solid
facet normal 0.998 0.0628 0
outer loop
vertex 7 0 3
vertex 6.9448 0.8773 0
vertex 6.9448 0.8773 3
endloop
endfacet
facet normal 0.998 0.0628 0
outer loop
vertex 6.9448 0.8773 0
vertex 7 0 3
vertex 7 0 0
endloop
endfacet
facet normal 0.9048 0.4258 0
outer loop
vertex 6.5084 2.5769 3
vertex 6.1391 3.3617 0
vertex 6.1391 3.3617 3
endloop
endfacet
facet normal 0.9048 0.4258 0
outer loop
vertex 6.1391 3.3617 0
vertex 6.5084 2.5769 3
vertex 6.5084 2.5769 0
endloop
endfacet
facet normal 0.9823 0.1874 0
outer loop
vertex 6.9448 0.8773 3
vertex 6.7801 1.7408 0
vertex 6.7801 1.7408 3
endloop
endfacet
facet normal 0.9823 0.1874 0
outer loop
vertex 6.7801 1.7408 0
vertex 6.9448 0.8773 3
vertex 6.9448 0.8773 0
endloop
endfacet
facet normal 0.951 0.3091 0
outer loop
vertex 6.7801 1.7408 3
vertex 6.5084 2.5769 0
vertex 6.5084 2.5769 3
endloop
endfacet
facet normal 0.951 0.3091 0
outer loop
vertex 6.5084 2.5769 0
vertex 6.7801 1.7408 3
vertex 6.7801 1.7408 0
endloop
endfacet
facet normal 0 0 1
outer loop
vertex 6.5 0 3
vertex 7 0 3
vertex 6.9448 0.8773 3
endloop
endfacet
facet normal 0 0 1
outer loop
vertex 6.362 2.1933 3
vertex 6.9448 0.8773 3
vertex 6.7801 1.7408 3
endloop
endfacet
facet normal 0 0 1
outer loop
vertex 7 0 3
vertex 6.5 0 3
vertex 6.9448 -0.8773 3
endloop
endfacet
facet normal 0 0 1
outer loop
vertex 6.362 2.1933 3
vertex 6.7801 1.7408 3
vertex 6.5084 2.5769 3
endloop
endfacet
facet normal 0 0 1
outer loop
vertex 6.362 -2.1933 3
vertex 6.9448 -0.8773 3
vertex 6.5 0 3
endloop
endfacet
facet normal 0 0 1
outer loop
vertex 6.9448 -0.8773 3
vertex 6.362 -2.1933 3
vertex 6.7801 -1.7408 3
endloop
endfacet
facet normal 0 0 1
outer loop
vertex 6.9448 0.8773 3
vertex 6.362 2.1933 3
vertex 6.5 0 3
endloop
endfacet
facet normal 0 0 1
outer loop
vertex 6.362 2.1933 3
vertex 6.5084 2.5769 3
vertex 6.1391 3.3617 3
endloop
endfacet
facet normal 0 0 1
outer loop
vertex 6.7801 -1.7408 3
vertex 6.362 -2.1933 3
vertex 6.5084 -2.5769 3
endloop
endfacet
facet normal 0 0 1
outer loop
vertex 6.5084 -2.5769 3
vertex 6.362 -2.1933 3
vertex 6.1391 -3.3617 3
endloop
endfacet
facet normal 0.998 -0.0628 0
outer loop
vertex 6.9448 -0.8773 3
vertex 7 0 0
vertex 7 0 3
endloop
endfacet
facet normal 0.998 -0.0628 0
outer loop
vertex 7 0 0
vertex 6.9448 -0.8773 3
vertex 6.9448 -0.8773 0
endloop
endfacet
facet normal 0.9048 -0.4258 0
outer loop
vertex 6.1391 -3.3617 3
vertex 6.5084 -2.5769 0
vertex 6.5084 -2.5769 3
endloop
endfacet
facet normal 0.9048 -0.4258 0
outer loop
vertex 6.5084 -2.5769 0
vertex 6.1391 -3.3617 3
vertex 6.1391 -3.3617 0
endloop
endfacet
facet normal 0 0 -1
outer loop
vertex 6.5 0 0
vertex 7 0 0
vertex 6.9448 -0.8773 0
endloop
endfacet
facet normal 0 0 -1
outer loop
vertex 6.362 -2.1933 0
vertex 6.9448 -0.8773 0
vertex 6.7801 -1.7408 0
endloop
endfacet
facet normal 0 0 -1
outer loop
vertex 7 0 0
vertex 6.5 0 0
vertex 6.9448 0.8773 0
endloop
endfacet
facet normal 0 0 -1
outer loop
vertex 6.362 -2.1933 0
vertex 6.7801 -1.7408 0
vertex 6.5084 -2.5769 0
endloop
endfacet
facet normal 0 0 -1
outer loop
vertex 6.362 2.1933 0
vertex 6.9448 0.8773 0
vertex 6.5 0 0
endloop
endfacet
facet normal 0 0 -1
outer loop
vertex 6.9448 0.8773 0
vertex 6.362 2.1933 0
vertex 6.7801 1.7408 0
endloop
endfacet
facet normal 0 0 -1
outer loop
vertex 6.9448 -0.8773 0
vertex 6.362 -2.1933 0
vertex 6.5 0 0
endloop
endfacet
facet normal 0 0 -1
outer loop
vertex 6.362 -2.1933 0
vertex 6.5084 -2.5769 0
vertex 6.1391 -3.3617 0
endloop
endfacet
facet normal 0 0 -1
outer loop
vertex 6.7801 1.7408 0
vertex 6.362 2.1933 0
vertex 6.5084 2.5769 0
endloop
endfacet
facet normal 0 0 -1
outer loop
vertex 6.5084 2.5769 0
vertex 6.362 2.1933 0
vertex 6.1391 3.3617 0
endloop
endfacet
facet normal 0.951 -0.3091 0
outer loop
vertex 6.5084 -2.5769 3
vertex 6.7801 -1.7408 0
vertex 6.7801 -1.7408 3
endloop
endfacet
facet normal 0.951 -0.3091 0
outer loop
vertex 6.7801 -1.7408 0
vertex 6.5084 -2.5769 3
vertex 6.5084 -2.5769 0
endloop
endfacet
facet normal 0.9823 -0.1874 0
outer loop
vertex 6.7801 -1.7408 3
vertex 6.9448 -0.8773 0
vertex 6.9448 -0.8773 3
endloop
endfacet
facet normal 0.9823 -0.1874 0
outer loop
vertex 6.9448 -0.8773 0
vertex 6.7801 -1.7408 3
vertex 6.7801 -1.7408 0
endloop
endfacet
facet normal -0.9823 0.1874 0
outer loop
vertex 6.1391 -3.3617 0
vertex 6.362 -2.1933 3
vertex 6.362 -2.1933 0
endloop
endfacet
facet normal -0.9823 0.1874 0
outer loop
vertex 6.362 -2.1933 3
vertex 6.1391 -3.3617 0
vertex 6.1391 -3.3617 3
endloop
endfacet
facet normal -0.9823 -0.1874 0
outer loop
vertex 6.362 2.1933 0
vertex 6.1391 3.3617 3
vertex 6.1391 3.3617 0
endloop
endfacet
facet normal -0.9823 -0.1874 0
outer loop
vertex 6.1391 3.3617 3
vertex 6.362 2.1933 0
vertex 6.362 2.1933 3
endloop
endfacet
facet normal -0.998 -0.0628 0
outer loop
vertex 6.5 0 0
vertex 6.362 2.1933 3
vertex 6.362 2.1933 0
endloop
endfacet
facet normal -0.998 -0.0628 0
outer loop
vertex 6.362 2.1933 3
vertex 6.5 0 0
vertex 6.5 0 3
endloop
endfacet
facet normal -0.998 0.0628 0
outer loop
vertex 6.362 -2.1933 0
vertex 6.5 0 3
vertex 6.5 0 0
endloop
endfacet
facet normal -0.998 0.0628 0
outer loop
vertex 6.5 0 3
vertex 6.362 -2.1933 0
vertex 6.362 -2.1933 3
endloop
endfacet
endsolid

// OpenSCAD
$fn = 50;


difference() {
	union() {
		cylinder(h = 3, r = 7.0000000000);
		translate(v = [-14.0000000000, 0, 0]) {
			cylinder(h = 3, r = 7.0000000000);
		}
	}
	union() {
		cylinder(h = 3, r = 3.2500000000);
		cylinder(h = 3, r = 1.8000000000);
		cylinder(h = 3, r = 1.8000000000);
		cylinder(h = 3, r = 1.8000000000);
		translate(v = [-18.5000000000, 0, 0]) {
			hull() {
				translate(v = [-3.7500000000, 0.0000000000, 0]) {
					cylinder(h = 3, r = 7.5000000000);
				}
				translate(v = [3.7500000000, 0.0000000000, 0]) {
					cylinder(h = 3, r = 7.5000000000);
				}
				translate(v = [-3.7500000000, -0.0000000000, 0]) {
					cylinder(h = 3, r = 7.5000000000);
				}
				translate(v = [3.7500000000, -0.0000000000, 0]) {
					cylinder(h = 3, r = 7.5000000000);
				}
			}
		}
		translate(v = [-11.0000000000, 0, 0.0000000000]) {
			cylinder(h = 3, r = 17.5000000000);
		}
	}
}
